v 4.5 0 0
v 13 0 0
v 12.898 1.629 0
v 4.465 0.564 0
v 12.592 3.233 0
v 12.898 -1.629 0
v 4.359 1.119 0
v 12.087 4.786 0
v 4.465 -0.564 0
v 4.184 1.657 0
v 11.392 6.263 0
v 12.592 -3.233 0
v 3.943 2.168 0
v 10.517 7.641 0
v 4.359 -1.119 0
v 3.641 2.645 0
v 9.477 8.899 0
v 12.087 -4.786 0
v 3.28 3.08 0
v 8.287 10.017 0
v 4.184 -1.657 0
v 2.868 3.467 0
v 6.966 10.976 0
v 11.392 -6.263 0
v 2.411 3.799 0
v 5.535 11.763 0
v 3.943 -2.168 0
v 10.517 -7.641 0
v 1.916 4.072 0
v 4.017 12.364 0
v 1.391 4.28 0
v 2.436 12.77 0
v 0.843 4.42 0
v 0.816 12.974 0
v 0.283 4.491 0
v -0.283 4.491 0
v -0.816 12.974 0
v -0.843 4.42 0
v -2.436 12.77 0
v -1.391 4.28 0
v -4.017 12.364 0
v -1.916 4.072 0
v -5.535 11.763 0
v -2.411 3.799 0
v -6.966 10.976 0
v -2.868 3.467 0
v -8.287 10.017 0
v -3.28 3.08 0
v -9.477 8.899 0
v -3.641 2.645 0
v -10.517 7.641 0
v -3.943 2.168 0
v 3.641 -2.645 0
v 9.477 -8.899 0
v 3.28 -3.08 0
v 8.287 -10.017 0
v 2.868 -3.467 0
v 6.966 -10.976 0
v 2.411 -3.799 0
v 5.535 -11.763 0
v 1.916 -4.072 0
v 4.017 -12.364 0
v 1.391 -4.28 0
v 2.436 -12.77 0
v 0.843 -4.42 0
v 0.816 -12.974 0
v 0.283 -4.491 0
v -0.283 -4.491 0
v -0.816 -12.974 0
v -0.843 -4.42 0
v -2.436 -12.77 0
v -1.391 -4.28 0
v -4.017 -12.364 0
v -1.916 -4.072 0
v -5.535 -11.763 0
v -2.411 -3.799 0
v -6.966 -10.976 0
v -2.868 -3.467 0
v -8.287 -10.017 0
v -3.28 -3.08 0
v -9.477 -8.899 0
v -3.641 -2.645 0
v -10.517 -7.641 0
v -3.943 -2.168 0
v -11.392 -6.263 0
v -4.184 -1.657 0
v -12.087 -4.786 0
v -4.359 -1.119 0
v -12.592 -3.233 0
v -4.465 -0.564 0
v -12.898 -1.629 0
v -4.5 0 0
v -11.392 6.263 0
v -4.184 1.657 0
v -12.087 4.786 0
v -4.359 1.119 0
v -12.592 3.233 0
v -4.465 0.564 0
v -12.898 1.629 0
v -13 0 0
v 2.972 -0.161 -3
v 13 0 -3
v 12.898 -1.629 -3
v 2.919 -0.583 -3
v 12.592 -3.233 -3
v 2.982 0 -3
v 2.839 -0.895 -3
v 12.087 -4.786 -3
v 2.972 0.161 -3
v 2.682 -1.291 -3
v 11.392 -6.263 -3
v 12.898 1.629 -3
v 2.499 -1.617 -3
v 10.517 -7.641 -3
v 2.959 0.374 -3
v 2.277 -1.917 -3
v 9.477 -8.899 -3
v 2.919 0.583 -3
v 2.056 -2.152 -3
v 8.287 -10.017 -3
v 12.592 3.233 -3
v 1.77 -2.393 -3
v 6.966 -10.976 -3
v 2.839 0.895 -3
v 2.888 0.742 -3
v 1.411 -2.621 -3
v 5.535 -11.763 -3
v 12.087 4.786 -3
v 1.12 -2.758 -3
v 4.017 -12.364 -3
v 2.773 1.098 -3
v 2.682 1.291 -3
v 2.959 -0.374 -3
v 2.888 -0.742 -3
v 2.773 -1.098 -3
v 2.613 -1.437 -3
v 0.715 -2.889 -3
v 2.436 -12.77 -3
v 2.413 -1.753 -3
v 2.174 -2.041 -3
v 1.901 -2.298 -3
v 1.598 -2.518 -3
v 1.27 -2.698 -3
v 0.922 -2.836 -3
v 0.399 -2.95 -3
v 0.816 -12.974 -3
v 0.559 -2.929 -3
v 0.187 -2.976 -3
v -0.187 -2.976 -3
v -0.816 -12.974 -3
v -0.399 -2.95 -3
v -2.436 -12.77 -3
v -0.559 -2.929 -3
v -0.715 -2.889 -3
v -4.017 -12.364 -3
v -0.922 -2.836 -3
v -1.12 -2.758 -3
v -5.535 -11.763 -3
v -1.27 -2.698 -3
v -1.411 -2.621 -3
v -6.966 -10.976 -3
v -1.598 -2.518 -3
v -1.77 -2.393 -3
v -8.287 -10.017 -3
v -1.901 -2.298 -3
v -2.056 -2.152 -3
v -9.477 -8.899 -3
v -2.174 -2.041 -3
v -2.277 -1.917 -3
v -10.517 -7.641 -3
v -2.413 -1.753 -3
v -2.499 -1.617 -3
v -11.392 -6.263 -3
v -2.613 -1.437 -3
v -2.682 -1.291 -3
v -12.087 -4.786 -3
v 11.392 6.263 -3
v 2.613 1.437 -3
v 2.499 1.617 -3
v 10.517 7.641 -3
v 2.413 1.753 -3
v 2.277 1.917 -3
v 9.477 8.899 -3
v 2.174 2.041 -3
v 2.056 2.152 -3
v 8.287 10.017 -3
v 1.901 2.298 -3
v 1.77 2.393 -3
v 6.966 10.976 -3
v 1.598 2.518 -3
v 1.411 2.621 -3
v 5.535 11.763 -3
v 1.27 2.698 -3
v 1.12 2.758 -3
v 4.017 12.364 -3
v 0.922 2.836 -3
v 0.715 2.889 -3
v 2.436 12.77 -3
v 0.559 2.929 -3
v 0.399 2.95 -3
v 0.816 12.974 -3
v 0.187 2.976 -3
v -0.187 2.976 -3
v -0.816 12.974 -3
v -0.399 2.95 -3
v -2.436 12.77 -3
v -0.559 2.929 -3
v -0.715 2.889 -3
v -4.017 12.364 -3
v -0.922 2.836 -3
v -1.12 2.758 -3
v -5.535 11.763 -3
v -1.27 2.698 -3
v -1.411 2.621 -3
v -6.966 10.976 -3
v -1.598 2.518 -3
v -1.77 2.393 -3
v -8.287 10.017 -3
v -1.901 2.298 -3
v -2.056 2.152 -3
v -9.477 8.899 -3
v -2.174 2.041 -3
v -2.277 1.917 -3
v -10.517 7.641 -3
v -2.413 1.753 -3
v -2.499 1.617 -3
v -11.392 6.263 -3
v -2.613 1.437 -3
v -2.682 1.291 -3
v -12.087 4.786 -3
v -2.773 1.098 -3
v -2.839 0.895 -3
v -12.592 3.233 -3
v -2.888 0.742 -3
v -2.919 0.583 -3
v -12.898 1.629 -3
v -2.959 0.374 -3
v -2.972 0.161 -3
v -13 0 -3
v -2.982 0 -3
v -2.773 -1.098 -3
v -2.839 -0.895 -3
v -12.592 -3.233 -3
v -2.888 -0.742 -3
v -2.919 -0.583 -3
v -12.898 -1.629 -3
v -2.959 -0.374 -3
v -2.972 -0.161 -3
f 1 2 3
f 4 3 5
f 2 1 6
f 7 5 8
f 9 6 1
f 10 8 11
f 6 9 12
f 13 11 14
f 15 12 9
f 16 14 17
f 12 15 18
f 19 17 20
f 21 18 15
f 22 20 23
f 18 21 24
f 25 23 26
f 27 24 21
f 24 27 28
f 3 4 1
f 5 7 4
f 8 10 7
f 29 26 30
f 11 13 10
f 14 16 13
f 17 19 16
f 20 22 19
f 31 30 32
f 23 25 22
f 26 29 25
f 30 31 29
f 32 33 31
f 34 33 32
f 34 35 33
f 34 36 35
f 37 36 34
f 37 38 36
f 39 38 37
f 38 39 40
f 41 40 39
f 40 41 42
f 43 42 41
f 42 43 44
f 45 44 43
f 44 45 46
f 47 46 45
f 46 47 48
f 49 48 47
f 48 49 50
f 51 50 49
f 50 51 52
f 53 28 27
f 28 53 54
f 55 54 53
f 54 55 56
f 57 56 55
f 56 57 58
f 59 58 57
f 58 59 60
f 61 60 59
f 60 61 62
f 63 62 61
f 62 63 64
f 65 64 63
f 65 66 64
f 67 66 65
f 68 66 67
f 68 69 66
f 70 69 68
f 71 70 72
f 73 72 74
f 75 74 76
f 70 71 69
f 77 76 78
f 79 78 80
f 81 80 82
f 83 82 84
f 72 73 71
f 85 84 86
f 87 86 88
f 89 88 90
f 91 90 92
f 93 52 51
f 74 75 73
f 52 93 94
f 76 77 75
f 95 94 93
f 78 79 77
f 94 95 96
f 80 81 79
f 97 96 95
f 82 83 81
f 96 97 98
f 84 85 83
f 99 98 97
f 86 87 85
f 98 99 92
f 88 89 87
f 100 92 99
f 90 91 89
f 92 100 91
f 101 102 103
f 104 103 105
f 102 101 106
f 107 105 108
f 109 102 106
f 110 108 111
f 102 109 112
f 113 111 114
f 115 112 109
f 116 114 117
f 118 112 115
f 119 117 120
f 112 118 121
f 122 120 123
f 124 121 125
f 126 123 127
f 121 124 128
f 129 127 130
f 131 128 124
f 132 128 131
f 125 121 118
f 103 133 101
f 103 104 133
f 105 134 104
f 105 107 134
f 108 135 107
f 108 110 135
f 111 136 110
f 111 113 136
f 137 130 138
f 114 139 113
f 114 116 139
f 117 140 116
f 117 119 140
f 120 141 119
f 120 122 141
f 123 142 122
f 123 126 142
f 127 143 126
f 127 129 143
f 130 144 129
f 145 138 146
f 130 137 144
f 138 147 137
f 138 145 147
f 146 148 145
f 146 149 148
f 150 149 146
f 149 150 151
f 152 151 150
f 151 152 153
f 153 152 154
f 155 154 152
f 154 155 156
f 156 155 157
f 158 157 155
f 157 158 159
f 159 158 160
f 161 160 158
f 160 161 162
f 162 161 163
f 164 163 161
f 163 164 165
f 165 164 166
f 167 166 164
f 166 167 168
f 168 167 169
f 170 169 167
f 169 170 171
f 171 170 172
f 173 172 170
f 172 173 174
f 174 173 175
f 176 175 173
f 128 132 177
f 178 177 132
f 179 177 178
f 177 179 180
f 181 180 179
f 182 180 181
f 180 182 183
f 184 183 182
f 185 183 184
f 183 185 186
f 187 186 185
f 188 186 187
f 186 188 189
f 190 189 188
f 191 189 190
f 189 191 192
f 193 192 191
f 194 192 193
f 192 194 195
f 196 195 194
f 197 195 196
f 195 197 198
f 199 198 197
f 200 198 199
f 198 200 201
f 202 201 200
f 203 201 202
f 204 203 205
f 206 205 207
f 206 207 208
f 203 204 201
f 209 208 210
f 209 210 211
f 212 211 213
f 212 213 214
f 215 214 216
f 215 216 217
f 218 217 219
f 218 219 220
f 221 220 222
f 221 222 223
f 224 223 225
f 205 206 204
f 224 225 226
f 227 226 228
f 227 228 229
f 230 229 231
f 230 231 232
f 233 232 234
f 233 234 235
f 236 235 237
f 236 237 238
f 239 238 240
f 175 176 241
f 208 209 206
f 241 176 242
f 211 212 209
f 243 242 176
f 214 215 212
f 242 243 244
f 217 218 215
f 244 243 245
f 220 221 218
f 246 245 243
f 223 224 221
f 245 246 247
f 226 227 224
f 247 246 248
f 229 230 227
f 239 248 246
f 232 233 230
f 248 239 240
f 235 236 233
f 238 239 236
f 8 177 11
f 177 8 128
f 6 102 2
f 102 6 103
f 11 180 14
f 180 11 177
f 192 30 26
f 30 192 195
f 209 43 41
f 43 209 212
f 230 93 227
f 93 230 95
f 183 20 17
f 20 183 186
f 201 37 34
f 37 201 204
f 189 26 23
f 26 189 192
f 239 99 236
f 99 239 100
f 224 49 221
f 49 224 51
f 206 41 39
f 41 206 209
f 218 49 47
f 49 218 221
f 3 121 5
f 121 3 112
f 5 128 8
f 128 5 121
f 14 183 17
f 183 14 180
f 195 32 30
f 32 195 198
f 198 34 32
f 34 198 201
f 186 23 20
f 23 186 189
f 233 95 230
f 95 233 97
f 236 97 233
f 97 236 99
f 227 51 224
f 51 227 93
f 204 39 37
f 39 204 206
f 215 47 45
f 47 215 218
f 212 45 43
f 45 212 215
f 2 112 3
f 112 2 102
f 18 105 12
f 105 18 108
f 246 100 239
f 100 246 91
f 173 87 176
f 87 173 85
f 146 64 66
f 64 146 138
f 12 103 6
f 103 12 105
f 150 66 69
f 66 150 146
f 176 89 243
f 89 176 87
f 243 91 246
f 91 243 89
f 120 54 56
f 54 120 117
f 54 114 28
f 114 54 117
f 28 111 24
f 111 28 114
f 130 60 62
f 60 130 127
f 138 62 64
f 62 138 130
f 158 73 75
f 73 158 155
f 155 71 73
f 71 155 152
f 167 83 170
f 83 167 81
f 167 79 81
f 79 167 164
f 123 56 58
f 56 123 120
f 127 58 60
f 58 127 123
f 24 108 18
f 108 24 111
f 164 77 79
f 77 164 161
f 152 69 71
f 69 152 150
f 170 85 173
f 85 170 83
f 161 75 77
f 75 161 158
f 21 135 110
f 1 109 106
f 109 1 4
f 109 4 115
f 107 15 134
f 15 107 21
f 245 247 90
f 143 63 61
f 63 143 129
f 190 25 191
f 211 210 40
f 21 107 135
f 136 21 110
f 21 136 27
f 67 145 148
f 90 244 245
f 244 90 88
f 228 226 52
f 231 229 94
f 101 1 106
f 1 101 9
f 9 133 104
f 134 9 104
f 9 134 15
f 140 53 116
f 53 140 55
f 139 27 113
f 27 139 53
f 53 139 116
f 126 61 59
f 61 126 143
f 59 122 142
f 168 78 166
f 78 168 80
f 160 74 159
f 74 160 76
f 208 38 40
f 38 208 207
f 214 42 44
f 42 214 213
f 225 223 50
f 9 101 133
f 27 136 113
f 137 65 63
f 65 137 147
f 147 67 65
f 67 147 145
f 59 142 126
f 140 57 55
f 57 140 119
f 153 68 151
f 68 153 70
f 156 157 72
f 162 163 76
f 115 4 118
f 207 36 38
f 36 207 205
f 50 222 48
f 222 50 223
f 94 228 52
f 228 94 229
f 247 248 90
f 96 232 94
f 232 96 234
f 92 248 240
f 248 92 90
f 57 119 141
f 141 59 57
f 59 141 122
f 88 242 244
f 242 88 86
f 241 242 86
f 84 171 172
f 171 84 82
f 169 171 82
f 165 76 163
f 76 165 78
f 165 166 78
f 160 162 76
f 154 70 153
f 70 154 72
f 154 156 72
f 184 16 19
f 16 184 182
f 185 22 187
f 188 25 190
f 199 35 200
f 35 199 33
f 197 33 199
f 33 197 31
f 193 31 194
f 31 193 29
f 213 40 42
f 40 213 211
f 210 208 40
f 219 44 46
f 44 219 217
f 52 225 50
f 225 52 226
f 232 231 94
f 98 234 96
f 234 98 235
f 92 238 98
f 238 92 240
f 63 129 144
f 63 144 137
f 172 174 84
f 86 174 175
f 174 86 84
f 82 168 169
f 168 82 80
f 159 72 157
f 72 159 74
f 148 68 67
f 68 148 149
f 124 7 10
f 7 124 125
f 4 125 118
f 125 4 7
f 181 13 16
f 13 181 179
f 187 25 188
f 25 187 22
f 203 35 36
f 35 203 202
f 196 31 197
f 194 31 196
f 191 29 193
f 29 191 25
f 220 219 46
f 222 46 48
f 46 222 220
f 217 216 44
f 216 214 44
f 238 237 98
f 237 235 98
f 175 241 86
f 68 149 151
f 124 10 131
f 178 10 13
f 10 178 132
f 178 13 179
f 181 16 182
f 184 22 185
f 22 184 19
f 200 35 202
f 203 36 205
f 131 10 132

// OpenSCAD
$fn = 50;


difference() {
	union() {
		translate(v = [0, 0, -3.0000000000]) {
			cylinder(h = 3, r = 7.0000000000);
		}
		translate(v = [0, 0, -3.0000000000]) {
			cylinder(h = 3, r = 13.0000000000);
		}
	}
	union() {
		translate(v = [0, 0, 0]) {
			rotate(a = [0, 0, 0]) {
				difference() {
					union() {
						#translate(v = [0, 0, -3.0000000000]) {
							cylinder(h = 3, r = 2.2500000000);
						}
						#translate(v = [0, 0, -4.2000000000]) {
							cylinder(h = 4.2000000000, r = 7.0000000000, r1 = 2.3750000000, r2 = 4.5000000000);
						}
						#translate(v = [0, 0, -3.0000000000]) {
							cylinder(h = 3, r = 2.3750000000);
						}
						#translate(v = [0, 0, -3.0000000000]) {
							cylinder(h = 3, r = 2.2500000000);
						}
					}
					union();
				}
			}
		}
	}
}
